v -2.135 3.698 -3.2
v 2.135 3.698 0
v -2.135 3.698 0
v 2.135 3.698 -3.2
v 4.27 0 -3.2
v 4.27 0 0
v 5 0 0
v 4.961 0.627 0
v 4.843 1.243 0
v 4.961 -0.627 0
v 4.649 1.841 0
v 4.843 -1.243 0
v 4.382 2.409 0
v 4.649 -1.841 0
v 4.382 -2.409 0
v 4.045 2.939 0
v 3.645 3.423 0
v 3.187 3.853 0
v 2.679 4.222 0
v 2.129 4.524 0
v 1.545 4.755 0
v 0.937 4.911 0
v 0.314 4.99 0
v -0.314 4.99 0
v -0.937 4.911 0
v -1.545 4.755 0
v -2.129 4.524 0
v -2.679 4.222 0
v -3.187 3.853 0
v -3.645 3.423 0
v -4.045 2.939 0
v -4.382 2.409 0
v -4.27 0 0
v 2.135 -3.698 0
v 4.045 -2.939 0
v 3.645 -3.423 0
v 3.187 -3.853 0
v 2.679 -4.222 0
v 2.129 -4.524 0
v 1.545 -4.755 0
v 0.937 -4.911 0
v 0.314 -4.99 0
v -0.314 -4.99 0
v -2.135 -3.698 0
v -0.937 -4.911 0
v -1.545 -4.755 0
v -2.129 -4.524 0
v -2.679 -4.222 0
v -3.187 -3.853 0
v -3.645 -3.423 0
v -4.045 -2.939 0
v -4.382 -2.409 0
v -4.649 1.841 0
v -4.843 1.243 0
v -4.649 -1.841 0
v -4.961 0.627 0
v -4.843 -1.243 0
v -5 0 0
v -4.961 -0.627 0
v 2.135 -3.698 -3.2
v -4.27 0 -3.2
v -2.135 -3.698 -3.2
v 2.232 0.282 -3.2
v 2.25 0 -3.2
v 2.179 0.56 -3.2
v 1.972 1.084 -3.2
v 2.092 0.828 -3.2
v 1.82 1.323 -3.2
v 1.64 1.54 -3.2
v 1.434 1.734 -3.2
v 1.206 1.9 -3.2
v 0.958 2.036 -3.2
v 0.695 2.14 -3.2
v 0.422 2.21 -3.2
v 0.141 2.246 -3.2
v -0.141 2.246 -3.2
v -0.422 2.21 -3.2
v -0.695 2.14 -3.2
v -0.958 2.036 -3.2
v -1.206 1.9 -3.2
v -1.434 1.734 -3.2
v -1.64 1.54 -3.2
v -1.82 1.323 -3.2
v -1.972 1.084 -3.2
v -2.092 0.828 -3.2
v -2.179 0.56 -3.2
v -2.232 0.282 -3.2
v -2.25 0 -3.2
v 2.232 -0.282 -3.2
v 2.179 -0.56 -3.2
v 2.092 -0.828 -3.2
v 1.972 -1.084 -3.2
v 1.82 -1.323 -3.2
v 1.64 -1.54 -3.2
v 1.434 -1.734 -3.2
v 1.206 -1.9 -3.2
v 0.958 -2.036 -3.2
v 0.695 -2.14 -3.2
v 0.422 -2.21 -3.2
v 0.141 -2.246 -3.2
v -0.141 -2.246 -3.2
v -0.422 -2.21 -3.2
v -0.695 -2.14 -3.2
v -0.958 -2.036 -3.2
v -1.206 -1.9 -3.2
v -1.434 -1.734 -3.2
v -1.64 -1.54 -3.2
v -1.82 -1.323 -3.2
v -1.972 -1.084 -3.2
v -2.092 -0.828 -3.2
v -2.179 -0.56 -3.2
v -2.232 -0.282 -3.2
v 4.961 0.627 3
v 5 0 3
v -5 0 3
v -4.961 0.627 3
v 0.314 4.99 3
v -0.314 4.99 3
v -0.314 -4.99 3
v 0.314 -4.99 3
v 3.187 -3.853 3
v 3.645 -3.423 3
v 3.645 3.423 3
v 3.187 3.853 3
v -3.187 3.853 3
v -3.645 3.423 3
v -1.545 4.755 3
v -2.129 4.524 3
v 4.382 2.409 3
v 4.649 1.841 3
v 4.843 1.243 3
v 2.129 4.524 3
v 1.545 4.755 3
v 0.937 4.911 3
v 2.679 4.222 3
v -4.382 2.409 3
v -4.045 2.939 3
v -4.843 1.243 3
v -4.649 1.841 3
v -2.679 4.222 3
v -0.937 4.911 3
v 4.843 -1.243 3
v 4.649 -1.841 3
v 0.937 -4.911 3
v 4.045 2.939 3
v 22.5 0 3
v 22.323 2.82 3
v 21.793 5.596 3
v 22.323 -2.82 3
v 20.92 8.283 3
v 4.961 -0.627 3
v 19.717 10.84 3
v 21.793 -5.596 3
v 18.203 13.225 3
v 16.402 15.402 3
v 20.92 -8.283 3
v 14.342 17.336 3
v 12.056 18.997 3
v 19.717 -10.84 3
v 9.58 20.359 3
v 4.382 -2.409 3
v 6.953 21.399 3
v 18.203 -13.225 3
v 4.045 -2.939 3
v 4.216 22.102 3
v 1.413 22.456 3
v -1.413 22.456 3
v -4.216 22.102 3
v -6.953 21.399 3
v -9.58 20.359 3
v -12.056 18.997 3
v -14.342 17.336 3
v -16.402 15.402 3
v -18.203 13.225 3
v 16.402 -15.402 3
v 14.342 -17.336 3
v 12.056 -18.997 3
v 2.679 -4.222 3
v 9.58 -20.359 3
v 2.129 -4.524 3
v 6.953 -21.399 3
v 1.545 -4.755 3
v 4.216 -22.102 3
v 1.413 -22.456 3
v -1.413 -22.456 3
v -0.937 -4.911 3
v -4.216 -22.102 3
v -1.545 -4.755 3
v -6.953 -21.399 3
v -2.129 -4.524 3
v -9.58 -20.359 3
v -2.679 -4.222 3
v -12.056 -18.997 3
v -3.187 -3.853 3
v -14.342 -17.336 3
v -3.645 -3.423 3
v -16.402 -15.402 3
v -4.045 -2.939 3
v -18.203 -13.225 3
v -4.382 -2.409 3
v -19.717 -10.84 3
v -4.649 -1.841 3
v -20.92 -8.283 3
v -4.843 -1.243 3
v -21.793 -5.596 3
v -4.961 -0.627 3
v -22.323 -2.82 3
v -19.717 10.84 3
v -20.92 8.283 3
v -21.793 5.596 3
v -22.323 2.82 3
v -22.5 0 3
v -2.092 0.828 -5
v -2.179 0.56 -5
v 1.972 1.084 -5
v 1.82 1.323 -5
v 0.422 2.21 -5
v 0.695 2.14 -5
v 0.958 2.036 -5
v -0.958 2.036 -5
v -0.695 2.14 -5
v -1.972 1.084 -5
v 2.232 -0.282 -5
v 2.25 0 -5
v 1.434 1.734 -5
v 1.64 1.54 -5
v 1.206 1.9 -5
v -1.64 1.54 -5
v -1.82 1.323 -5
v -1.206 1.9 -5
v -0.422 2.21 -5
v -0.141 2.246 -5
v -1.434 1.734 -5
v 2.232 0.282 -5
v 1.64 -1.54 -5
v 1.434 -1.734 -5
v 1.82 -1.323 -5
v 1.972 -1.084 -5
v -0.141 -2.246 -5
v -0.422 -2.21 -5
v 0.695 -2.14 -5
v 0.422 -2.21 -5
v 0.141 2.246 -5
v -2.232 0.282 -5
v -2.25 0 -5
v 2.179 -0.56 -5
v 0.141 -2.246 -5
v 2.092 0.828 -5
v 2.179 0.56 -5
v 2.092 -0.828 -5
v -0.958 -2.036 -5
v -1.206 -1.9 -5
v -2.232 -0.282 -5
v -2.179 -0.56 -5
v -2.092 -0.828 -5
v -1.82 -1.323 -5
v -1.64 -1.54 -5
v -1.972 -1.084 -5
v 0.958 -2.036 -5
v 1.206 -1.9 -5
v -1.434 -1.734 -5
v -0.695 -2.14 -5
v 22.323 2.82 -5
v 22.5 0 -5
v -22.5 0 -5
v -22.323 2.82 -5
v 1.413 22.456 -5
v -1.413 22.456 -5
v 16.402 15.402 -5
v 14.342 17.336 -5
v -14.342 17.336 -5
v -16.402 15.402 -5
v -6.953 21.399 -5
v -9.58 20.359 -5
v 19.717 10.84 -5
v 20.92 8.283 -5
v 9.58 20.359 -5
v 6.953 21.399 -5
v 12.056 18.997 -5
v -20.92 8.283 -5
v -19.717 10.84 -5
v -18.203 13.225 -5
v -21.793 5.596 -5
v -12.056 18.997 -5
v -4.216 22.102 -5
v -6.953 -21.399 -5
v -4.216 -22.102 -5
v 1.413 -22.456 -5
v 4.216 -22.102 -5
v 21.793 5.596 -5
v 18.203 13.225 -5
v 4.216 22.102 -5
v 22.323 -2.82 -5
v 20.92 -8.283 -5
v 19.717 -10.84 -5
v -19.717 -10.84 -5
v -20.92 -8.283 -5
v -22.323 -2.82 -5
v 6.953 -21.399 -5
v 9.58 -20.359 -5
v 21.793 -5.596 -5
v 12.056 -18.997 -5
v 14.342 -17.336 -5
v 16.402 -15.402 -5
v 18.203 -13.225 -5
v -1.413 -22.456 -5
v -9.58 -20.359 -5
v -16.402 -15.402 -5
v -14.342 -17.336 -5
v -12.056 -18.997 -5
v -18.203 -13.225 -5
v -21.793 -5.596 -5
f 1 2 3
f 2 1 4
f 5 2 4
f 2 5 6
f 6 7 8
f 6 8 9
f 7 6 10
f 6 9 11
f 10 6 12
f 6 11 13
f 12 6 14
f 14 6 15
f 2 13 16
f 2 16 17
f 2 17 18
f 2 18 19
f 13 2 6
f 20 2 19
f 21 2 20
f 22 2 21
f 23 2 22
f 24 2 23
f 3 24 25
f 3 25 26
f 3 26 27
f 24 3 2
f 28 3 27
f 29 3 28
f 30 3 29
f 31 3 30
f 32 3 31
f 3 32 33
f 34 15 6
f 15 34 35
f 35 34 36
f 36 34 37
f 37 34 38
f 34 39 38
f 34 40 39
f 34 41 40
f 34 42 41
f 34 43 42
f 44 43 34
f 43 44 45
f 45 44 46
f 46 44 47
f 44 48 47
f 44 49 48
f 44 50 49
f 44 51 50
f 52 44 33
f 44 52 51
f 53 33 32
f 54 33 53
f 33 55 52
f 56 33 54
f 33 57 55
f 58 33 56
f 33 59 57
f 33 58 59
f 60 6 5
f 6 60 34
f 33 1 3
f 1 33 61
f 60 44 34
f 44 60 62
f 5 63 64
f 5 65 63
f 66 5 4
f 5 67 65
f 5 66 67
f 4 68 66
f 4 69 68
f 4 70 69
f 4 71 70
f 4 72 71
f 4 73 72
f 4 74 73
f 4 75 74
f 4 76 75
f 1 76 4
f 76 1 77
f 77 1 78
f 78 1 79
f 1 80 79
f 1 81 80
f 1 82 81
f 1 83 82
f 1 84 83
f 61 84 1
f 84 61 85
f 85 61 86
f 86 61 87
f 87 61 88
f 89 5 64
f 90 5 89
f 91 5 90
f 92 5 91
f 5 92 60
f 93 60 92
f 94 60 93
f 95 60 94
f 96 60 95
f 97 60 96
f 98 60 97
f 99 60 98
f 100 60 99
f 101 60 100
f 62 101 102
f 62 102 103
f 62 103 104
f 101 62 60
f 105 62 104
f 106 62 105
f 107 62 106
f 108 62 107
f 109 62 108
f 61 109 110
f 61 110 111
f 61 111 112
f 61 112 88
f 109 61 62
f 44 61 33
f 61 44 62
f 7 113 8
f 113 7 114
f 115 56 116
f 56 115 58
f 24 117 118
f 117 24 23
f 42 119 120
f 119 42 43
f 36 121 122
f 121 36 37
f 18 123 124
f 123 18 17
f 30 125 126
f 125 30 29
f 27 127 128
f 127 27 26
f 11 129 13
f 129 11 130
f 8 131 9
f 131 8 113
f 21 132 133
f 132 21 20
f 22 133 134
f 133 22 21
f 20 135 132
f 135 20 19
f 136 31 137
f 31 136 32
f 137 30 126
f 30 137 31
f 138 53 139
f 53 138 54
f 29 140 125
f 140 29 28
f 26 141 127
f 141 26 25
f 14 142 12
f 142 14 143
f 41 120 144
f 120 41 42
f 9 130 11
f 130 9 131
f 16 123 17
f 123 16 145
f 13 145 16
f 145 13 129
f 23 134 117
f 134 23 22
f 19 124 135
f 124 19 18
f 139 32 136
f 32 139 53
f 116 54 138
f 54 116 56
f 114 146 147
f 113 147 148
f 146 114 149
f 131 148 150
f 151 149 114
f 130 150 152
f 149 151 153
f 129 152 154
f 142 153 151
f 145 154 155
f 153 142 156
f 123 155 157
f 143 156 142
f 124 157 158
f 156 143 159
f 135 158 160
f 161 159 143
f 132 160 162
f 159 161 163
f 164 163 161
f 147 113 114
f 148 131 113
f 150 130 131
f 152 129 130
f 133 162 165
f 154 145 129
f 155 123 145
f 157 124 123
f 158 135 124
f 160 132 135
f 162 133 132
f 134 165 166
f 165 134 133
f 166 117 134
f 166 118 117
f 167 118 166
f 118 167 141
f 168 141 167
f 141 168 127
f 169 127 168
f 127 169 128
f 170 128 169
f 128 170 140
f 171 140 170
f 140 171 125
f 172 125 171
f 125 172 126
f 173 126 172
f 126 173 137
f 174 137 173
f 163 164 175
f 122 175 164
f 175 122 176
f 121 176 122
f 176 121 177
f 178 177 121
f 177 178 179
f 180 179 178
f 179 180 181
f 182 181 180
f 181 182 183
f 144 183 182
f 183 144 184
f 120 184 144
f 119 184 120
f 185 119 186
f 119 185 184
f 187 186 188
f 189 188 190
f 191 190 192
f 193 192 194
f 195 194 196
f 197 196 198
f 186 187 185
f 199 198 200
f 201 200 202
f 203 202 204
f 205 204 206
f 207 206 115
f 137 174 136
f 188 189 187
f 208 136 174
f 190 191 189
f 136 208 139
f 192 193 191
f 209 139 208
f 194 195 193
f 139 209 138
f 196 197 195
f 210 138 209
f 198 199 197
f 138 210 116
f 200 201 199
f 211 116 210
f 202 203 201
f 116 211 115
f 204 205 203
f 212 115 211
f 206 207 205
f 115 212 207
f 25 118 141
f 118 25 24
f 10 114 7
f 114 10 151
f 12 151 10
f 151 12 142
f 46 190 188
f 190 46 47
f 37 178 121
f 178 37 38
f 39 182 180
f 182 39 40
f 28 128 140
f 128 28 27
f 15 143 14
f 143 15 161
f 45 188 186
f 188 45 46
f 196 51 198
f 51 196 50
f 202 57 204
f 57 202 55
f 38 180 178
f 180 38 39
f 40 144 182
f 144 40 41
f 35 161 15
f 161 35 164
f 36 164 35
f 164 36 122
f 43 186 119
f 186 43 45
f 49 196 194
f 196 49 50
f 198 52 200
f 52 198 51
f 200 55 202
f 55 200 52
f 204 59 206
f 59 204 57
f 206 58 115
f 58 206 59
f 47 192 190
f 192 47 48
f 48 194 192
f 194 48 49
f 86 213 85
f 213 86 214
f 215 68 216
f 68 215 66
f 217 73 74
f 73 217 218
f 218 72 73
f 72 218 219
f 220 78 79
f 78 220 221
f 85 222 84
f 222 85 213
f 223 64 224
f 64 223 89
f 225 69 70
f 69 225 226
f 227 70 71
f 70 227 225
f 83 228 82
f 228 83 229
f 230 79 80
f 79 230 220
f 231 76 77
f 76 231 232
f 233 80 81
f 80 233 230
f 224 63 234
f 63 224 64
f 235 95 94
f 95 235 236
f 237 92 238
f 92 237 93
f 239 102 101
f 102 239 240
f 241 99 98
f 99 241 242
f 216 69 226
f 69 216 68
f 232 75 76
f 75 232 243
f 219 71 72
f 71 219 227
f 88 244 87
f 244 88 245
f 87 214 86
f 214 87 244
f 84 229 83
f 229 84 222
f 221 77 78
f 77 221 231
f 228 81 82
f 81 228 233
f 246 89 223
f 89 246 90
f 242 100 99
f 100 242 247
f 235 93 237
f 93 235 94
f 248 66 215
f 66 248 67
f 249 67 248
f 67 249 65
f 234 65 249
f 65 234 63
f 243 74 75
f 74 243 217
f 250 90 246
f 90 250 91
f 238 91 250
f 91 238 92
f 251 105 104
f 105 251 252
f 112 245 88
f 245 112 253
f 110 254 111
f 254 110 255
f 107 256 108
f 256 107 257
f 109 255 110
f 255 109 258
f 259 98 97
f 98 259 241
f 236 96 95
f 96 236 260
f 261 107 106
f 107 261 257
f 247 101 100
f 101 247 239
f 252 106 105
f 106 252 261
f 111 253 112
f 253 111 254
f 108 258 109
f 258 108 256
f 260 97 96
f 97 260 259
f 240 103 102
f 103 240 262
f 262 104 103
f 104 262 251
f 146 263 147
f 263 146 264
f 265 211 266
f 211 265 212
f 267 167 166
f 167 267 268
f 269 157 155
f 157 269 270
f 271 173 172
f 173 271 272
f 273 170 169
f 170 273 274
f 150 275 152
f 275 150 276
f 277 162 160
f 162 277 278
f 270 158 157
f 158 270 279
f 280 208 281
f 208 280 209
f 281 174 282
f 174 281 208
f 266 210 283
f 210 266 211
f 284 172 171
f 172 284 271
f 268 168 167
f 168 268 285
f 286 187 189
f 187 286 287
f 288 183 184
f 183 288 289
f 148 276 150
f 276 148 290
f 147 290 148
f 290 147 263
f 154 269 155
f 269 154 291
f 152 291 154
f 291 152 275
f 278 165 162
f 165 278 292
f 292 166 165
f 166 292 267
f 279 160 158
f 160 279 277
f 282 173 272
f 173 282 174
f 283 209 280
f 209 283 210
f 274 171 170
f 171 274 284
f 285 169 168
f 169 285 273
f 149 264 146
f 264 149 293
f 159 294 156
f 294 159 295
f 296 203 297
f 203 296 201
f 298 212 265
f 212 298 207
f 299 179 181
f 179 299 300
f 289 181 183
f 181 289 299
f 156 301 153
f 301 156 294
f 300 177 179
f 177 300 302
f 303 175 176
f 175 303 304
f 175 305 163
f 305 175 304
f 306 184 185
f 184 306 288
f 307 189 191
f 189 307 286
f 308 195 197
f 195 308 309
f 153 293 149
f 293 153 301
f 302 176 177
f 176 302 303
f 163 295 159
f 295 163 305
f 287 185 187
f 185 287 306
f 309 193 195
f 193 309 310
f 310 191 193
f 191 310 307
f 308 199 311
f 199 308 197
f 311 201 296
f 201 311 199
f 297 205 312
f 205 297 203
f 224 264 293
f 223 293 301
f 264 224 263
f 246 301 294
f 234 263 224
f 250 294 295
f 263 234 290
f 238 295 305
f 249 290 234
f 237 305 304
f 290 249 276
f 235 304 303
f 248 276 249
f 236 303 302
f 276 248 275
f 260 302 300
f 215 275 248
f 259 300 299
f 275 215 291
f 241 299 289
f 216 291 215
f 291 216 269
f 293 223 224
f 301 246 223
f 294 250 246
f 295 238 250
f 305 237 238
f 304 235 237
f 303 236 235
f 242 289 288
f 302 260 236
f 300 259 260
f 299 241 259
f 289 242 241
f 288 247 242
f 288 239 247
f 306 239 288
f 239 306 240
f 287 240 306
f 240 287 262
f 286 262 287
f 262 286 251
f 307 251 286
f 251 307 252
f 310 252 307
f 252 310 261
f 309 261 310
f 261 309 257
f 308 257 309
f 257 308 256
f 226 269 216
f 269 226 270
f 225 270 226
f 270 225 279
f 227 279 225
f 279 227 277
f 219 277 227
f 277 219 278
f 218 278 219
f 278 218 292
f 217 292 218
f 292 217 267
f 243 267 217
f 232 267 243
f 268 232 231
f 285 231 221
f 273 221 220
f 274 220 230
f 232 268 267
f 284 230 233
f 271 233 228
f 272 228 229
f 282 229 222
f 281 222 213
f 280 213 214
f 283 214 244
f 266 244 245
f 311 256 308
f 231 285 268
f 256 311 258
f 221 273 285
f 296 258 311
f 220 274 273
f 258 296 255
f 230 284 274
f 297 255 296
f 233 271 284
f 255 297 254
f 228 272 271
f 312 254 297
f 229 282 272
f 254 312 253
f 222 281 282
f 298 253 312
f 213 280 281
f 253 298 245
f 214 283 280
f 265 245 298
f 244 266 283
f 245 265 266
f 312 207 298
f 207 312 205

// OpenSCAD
$fn = 50;

difference() {
	union() {
		translate(v = [0, 0, -5.0]) {
			cylinder(h = 8.0, r = 22.5);
		}
	}
	union() {
		translate(v = [0, 0, 0]) {
			rotate(a = [0, 0, 0]) {
				difference() {
					union() {
						translate(v = [0, 0, -3.2]) {
							linear_extrude(height = 3.2) {
								polygon(points = [[4.2698, 0.0], [2.1349000000000005, 3.697755269078796], [-2.134899999999999, 3.6977552690787965], [-4.2698, 5.228996902999369e-16], [-2.134900000000002, -3.6977552690787956], [2.1348999999999974, -3.697755269078798]]);
							}
						}
					}
					union();
				}
			}
		}
		#cylinder(h = 3, r = 5.0);
		#translate(v = [0, 0, -100.0]) {
			cylinder(h = 200, r = 2.25);
		}
	}
}
